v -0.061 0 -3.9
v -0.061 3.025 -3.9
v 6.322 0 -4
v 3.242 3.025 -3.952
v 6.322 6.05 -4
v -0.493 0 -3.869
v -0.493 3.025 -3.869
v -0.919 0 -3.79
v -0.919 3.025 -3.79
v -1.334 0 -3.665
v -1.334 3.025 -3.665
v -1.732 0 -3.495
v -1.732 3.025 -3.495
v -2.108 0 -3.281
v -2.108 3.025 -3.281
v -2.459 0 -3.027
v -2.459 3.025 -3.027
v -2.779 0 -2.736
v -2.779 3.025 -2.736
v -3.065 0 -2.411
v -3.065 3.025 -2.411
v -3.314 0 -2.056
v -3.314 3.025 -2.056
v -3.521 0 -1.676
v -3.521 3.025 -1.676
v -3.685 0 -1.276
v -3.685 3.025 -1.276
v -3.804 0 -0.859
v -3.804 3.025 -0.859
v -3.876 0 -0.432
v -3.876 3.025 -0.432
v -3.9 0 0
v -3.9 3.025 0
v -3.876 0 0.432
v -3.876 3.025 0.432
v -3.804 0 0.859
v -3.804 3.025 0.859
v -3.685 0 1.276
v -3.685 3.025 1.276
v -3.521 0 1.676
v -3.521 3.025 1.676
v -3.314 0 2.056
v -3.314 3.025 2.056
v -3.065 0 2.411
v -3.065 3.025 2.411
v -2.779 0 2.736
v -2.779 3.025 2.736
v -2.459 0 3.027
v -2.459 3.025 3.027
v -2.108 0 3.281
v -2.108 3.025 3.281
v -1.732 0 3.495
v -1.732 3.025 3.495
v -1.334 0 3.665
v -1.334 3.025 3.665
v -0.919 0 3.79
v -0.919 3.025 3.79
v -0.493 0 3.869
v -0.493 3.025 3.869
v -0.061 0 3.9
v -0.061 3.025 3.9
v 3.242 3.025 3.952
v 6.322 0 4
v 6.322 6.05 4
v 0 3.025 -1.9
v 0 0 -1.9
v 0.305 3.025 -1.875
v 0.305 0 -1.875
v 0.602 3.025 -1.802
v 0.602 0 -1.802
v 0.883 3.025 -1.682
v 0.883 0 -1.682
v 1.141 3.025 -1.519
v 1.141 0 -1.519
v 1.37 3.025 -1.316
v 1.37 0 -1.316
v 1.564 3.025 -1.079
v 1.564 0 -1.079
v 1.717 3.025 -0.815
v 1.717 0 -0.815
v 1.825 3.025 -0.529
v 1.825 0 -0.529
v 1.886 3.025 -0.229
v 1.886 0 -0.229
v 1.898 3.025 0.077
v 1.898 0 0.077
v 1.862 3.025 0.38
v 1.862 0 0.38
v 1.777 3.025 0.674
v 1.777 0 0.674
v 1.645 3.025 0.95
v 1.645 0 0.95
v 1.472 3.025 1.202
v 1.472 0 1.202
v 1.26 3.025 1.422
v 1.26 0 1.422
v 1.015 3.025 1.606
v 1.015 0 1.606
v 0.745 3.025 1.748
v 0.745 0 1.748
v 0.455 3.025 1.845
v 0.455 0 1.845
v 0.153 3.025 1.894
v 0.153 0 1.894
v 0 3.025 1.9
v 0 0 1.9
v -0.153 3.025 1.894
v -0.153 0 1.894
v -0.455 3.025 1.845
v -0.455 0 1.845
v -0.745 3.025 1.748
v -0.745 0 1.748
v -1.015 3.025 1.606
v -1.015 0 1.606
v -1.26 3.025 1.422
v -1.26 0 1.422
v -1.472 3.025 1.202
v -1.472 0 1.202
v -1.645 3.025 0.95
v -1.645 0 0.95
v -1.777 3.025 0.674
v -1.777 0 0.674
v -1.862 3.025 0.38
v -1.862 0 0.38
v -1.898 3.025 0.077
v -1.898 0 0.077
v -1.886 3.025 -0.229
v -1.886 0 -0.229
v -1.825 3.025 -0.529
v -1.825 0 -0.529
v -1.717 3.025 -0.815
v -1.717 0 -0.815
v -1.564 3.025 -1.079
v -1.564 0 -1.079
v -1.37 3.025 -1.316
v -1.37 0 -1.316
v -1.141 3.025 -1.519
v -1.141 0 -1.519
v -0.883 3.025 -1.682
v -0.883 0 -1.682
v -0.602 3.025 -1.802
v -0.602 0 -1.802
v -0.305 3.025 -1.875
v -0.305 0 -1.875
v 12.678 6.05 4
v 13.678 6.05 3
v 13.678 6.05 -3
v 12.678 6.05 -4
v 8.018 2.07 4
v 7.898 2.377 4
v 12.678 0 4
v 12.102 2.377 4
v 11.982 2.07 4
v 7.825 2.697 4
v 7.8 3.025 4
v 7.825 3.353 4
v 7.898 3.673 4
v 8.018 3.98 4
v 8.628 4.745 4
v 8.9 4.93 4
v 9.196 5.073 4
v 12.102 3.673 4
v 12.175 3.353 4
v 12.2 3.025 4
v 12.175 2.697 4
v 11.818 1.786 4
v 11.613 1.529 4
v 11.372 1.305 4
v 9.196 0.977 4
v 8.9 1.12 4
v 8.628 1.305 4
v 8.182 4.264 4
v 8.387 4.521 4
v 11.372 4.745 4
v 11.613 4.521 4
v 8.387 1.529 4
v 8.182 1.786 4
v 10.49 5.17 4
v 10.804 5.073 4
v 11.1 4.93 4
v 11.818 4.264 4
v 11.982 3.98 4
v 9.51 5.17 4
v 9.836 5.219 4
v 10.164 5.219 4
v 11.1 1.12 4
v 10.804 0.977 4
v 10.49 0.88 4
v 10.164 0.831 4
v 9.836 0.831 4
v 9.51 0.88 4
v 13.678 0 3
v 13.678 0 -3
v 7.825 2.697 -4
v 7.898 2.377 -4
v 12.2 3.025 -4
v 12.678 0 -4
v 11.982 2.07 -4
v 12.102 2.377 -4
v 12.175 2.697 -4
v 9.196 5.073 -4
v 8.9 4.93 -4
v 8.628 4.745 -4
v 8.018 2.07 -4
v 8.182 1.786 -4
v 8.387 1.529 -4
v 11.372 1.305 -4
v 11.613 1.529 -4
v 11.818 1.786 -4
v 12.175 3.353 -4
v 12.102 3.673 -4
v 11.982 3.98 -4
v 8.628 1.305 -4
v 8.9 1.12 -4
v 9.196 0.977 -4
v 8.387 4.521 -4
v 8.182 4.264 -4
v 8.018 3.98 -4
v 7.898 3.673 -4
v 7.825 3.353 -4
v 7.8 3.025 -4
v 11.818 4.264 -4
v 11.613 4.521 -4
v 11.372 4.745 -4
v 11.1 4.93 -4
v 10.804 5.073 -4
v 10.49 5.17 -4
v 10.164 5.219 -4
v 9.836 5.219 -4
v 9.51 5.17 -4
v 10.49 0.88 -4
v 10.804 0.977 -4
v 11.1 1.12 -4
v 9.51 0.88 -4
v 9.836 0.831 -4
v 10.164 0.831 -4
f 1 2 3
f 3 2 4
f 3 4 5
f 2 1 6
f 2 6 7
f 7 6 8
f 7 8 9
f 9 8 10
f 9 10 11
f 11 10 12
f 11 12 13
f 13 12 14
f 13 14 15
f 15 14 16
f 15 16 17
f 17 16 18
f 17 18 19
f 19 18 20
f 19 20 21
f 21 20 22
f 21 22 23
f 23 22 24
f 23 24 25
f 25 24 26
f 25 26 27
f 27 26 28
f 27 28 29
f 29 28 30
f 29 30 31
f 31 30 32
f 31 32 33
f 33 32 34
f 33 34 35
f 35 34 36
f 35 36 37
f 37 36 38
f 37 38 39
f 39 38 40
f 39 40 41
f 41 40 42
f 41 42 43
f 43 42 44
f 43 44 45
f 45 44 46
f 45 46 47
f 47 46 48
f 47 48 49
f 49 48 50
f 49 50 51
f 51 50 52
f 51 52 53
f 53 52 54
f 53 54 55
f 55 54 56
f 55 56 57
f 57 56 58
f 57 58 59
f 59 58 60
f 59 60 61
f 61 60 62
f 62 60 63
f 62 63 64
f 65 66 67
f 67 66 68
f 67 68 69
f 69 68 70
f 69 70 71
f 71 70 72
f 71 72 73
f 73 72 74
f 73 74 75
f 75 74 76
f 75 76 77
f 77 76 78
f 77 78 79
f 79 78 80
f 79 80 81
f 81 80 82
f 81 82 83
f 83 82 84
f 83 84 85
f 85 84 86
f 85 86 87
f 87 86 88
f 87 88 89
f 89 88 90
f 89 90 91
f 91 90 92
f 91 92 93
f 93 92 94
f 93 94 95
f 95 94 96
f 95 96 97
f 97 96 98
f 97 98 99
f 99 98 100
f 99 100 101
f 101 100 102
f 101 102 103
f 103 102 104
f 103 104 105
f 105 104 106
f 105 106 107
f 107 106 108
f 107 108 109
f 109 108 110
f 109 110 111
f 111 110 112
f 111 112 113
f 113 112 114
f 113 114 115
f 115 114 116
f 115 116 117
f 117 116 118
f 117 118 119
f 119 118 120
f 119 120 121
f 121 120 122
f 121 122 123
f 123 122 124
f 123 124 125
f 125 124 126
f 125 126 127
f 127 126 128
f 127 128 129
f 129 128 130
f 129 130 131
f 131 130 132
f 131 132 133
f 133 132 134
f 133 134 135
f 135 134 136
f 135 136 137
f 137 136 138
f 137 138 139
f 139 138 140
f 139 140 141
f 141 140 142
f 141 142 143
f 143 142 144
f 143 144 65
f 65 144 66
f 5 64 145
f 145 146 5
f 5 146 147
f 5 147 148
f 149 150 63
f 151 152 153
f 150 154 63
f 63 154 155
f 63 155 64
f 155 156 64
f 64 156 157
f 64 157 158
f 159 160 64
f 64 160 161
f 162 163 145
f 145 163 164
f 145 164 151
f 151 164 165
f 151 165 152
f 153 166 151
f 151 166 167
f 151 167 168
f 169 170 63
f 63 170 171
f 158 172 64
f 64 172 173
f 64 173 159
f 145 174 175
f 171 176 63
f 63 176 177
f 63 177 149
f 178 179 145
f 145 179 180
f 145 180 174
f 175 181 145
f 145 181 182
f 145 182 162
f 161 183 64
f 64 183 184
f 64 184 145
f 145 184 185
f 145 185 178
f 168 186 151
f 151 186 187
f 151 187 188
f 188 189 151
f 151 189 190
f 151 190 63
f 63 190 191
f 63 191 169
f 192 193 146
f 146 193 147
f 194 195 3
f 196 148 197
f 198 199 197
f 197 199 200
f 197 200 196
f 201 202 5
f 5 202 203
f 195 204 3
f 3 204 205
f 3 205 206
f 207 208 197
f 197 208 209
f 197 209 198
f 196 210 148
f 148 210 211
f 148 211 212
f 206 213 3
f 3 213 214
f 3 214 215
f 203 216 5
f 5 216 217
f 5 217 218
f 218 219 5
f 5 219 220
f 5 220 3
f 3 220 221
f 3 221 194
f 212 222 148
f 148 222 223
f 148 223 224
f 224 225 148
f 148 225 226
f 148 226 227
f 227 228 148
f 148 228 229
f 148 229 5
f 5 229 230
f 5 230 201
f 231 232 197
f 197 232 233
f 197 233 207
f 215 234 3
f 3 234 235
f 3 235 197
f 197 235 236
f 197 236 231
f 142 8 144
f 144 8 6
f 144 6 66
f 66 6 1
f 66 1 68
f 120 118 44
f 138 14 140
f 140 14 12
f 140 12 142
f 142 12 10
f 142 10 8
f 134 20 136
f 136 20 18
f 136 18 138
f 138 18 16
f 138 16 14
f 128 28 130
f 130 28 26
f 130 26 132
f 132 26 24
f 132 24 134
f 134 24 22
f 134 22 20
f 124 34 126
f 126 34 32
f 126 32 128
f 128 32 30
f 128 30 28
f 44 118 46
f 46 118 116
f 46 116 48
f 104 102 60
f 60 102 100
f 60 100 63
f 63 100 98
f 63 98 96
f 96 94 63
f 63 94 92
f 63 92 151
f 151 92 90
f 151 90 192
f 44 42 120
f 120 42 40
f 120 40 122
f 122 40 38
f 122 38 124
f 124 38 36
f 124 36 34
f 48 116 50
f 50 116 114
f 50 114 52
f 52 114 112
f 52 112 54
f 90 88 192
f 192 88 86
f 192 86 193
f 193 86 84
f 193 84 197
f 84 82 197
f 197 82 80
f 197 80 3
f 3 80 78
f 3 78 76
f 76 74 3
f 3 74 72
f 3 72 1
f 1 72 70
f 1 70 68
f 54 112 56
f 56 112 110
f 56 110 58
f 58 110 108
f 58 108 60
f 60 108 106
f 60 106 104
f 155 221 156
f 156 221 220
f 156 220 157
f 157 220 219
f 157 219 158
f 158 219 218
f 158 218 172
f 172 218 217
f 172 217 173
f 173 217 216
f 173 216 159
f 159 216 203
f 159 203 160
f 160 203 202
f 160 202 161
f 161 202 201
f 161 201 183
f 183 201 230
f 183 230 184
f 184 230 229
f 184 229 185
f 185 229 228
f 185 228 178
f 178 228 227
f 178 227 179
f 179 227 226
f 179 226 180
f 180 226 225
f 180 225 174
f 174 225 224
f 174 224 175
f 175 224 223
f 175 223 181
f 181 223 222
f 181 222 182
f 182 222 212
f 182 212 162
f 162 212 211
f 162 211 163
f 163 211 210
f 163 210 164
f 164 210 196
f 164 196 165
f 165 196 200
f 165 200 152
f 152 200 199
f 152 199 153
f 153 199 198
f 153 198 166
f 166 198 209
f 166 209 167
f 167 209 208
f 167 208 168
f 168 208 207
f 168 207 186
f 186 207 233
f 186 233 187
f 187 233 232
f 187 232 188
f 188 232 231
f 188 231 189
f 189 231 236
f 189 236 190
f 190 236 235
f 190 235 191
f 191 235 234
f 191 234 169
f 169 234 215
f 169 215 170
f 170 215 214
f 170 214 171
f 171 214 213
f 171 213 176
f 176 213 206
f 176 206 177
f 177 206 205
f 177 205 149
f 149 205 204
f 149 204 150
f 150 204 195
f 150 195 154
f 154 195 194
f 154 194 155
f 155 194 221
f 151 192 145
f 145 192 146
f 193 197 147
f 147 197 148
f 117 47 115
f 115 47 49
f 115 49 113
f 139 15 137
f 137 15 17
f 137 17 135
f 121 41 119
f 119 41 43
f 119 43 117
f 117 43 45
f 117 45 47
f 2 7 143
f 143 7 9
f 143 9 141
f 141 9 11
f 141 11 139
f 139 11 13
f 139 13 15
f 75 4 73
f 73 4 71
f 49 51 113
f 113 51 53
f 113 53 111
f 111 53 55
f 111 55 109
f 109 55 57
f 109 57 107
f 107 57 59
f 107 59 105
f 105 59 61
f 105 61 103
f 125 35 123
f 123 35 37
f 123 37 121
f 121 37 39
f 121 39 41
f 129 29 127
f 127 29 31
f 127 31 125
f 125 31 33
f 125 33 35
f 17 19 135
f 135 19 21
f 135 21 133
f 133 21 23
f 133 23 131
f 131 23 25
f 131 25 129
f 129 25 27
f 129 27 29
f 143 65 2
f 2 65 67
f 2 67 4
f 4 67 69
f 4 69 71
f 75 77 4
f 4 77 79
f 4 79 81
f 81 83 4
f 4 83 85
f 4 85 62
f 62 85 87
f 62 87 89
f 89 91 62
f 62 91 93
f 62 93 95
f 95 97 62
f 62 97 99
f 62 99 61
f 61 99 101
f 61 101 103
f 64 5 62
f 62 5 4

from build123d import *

# Parameters (mm, degrees)
SKETCH1_R               = 1.9
BOSS_EXTRUDE1_DEPTH     = 6.05
CUT_EXTRUDE1_DEPTH      = 19
CUT_EXTRUDE1_DEPTH_BACK = 21
SKETCH2_R               = 2.2
CHAMFER2_SIZE           = 1
CUT_EXTRUDE2_DEPTH      = 10
CUT_EXTRUDE2_DEPTH_BACK = 10


with BuildPart() as part:
    # Sketch1 → Boss-Extrude1 (new body)
    with BuildSketch(Plane(origin=(0, 0, 0), x_dir=(1, 0, 0), z_dir=(0, 1, 0))):
        with BuildLine():
            Line((-0.061383878, 3.899516896), (6.321978872, 4))
            Line((6.321978872, 4), (13.678021128, 4))
            Line((13.678021128, 4), (13.678021128, -4))
            Line((13.678021128, -4), (6.321978872, -4))
            Line((6.321978872, -4), (-0.061383878, -3.899516896))
            ThreePointArc((-0.061383878, -3.899516896), (-3.9, 0), (-0.061383878, 3.899516896))
        make_face()
        with Locations(Location((0, 0, 0), (0, 0, 270))):
            Circle(SKETCH1_R, mode=Mode.SUBTRACT)
    extrude(amount=BOSS_EXTRUDE1_DEPTH)

    # Sketch2 → Cut-Extrude1 (cut, two sides: drawn at the far end of the back side and taken through both)
    with BuildSketch(Plane.XY.offset(-CUT_EXTRUDE1_DEPTH_BACK)):
        with Locations(Location((10, 3.025, 0), (0, 0, 180))):
            Circle(SKETCH2_R)
    extrude(amount=CUT_EXTRUDE1_DEPTH + CUT_EXTRUDE1_DEPTH_BACK, mode=Mode.SUBTRACT)

    # Chamfer2
    chamfer2_edges = [part.edges().sort_by_distance(p)[0] for p in [
        (13.678021128, 3.025, -4),
        (13.678021128, 3.025, 4),
    ]]
    chamfer(chamfer2_edges, length=CHAMFER2_SIZE)

    # Sketch3 → Cut-Extrude2 (cut, two sides: drawn at the far end of the back side and taken through both)
    with BuildSketch(Plane.XY.offset(-CUT_EXTRUDE2_DEPTH_BACK)):
        Polygon((-3.9, 3.025), (3.241860159, 3.025), (6.321978872, 6.05), (-3.9, 6.05), align=None)
    extrude(amount=CUT_EXTRUDE2_DEPTH + CUT_EXTRUDE2_DEPTH_BACK, mode=Mode.SUBTRACT)


solid = part.part
